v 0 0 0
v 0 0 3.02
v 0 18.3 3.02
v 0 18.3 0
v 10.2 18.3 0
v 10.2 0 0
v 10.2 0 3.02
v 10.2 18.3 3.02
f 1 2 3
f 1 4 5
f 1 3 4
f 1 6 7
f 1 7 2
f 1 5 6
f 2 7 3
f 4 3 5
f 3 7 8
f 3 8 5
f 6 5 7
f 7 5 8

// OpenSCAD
/* Warning, this is a very basic generator with a lot of approximation 
input data : [FLATPACK, 8FB, 10.2x18.3x3.02mm, 28, , A, C04-21098A]
generated by com.zoubworld.electronics.cad.model3d.Basic
Date : Sun Feb 15 10:50:49 CET 2026
*/

//body
color("black")
translate([0,0,0])
cube([10.2,18.3,3.02], center=false);
